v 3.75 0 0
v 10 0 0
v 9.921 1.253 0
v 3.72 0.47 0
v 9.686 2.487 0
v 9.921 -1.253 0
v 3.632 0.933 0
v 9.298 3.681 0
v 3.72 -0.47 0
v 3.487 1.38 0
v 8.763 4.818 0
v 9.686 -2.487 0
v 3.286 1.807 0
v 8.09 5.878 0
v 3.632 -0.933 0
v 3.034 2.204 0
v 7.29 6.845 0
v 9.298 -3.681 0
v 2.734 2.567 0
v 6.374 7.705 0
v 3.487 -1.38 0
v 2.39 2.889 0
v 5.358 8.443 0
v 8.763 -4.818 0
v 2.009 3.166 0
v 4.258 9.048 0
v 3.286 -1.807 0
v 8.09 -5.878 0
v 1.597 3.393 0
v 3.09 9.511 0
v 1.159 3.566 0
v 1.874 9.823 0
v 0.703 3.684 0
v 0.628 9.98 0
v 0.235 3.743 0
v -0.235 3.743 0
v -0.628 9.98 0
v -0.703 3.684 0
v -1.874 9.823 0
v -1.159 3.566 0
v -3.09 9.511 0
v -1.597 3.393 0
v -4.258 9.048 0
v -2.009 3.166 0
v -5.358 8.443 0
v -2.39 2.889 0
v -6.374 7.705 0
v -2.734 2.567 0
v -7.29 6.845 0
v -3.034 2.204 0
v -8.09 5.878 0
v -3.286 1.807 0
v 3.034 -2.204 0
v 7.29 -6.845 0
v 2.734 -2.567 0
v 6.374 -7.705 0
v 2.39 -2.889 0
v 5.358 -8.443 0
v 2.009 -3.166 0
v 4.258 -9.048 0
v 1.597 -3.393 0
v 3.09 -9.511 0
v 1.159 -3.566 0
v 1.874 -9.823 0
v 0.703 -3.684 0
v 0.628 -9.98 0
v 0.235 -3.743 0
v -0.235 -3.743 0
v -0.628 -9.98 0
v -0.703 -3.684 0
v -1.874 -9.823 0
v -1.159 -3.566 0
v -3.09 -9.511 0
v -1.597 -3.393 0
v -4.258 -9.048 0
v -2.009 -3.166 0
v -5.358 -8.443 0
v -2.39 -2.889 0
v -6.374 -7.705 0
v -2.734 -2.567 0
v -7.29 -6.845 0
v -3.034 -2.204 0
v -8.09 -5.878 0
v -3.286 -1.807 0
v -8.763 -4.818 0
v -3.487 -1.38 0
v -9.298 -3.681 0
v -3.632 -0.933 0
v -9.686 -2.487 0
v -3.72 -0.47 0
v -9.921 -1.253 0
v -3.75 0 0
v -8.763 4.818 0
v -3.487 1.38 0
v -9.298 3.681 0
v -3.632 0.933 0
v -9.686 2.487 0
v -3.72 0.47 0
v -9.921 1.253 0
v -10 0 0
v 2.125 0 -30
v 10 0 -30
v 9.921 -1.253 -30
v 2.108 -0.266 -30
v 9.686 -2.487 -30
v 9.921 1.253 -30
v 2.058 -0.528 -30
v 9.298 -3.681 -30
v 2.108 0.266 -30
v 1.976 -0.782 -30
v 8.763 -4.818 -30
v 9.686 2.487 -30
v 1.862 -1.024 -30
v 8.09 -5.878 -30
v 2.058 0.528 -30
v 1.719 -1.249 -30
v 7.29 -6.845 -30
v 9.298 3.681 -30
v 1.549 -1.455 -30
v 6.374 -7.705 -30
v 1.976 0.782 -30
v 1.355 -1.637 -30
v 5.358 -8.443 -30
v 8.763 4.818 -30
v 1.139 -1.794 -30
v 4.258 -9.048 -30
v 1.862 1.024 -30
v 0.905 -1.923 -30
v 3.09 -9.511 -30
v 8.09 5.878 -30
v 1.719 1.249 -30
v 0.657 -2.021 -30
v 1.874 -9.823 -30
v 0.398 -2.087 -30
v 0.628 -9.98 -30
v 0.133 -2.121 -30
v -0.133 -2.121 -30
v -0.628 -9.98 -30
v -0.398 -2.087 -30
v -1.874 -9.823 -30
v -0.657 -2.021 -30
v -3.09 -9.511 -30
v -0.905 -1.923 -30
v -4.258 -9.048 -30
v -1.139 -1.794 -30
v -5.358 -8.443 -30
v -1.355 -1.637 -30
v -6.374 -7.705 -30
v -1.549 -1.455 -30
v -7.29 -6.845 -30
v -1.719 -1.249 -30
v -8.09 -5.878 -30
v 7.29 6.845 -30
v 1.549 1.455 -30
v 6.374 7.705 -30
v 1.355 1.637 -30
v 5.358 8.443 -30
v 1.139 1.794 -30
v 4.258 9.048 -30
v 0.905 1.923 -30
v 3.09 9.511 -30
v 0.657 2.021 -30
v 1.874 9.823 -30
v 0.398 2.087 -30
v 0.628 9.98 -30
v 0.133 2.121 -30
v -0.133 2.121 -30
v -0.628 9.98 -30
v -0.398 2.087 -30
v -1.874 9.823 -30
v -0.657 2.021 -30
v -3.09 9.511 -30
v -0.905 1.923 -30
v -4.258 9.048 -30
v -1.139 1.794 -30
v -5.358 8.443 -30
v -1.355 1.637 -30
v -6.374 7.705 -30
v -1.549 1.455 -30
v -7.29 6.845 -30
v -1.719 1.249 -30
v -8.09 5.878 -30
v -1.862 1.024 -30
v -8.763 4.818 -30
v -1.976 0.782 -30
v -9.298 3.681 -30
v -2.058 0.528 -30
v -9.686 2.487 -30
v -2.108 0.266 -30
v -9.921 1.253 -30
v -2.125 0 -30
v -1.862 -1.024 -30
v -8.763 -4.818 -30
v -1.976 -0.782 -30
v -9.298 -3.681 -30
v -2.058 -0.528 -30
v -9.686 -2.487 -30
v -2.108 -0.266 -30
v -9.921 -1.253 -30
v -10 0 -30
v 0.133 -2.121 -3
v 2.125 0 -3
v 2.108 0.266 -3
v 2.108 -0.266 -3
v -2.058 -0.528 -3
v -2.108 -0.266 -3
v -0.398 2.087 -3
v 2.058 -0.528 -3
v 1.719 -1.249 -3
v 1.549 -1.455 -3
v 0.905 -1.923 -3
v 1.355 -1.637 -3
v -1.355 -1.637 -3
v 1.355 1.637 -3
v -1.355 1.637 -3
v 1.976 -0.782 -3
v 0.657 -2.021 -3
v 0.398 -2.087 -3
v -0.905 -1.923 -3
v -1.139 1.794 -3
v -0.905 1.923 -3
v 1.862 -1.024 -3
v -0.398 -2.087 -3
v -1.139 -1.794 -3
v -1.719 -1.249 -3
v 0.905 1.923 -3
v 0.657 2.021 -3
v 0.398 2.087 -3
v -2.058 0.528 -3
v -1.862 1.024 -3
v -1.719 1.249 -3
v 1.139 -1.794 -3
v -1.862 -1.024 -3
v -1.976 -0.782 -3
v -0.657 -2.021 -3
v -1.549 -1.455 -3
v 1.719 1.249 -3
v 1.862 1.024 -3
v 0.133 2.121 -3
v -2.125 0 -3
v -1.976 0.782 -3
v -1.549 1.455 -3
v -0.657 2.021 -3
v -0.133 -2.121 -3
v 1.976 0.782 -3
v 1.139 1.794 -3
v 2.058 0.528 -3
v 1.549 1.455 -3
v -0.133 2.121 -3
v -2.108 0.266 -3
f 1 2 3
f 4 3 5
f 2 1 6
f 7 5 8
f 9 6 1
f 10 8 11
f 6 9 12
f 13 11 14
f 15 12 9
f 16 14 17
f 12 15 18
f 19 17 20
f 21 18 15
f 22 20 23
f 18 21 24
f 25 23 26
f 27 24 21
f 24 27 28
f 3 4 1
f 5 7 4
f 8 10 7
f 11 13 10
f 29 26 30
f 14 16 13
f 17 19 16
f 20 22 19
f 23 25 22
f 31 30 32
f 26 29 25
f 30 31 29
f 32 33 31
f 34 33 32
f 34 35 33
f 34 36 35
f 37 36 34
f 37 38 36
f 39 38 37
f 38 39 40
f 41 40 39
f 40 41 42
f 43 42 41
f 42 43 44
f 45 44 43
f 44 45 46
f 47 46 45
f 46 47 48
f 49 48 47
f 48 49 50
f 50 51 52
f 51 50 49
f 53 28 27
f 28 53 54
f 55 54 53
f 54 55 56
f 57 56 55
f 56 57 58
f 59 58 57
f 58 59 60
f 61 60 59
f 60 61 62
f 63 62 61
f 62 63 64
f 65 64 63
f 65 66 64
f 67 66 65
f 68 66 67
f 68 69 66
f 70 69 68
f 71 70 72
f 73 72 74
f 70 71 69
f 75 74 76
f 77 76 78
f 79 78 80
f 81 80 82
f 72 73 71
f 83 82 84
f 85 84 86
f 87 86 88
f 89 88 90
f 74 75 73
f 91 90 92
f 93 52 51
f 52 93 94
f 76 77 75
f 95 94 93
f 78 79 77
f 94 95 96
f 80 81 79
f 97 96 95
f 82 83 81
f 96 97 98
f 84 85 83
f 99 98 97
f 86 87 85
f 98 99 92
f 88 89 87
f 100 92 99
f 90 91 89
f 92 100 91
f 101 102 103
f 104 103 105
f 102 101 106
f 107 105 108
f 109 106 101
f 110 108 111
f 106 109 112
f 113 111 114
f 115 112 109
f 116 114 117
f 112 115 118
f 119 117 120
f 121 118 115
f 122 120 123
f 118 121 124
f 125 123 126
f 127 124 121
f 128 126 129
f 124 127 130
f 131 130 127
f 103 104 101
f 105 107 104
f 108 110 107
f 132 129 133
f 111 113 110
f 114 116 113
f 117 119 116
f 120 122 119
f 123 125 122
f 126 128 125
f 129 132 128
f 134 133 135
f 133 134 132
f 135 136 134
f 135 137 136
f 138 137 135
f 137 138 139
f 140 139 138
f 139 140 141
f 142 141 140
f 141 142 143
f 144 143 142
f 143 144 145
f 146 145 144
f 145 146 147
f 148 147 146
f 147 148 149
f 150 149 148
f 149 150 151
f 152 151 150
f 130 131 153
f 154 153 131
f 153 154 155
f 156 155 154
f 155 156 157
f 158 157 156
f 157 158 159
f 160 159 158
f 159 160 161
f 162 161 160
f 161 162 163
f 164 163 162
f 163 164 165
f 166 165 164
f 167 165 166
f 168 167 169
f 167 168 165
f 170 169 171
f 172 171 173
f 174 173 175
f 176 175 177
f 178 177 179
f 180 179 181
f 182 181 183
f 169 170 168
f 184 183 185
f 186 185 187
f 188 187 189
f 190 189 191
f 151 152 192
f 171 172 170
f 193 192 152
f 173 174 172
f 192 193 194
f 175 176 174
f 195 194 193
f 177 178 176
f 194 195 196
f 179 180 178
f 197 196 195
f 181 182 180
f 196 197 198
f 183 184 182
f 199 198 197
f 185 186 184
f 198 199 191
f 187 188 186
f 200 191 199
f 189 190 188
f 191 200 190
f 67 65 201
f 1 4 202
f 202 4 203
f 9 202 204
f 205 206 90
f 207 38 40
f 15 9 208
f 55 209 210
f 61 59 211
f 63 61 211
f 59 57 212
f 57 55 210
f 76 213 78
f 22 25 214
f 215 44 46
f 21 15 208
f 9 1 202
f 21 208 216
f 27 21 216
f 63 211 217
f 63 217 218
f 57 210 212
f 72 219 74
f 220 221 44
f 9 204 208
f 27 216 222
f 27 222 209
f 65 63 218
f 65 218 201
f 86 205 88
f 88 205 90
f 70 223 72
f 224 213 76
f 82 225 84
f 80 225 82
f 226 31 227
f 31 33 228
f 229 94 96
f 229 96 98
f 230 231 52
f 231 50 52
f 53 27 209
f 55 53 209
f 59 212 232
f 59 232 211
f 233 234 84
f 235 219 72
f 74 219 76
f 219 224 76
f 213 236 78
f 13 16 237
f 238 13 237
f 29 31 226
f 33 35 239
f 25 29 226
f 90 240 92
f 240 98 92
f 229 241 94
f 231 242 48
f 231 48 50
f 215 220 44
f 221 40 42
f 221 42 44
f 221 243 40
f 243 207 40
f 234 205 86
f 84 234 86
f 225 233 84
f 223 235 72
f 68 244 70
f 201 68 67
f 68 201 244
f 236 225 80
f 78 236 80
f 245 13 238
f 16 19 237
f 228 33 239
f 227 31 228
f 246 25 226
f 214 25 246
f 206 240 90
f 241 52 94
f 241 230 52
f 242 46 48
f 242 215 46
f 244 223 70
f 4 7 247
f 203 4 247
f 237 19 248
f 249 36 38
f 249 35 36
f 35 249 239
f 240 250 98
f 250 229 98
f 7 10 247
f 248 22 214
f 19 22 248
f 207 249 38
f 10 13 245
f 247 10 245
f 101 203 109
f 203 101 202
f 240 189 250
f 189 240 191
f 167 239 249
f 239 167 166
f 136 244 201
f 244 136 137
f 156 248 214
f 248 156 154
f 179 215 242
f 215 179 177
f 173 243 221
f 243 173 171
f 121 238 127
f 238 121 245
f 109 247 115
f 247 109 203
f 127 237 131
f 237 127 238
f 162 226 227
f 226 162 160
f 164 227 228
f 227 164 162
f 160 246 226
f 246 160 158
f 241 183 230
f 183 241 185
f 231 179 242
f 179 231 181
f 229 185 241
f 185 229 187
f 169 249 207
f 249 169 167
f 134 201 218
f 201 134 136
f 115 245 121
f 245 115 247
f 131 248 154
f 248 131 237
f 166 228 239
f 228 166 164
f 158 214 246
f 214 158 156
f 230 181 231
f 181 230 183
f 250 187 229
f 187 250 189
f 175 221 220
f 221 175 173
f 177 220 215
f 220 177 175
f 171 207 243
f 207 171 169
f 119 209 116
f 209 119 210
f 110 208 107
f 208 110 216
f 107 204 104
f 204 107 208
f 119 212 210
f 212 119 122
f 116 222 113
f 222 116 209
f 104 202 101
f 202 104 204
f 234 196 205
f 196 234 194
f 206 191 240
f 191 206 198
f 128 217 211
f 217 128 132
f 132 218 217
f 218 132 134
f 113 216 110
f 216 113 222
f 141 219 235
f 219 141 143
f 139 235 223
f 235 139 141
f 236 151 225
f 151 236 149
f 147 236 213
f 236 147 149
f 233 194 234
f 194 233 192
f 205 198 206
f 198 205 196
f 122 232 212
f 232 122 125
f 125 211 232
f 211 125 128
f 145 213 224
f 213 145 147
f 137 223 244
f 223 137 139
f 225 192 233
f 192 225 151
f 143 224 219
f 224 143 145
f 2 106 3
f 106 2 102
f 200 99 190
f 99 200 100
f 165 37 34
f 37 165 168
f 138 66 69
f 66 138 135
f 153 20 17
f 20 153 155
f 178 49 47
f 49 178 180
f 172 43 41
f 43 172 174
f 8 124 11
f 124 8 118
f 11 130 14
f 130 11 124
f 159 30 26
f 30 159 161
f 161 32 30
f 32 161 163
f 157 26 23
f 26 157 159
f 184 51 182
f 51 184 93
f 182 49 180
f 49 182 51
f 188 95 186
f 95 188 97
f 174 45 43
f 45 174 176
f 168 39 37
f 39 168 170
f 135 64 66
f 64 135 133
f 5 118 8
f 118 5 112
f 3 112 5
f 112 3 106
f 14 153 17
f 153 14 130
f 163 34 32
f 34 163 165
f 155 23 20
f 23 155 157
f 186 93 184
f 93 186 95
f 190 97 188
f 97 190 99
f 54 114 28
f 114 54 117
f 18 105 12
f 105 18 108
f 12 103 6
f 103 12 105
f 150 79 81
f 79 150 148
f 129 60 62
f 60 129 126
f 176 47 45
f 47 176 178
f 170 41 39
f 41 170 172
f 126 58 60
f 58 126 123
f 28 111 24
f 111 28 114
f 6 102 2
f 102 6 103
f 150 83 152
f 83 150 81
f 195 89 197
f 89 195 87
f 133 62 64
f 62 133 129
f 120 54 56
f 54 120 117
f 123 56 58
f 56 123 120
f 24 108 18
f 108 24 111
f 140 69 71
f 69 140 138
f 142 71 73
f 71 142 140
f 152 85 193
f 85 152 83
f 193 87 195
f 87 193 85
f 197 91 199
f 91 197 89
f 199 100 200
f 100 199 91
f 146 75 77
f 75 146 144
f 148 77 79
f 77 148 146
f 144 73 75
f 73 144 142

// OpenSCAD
$fn = 50;


difference() {
	union() {
		translate(v = [0, 0, -30.0000000000]) {
			cylinder(h = 30, r = 10.0000000000);
		}
	}
	union() {
		translate(v = [0, 0, 0]) {
			rotate(a = [0, 0, 0]) {
				difference() {
					union() {
						#translate(v = [0, 0, -30.0000000000]) {
							cylinder(h = 30, r = 2.0000000000);
						}
						#translate(v = [0, 0, -3]) {
							cylinder(h = 3, r = 10.0000000000, r1 = 2.1250000000, r2 = 3.7500000000);
						}
						#translate(v = [0, 0, -30.0000000000]) {
							cylinder(h = 30, r = 2.1250000000);
						}
						#translate(v = [0, 0, -30.0000000000]) {
							cylinder(h = 30, r = 2.0000000000);
						}
					}
					union();
				}
			}
		}
	}
}
